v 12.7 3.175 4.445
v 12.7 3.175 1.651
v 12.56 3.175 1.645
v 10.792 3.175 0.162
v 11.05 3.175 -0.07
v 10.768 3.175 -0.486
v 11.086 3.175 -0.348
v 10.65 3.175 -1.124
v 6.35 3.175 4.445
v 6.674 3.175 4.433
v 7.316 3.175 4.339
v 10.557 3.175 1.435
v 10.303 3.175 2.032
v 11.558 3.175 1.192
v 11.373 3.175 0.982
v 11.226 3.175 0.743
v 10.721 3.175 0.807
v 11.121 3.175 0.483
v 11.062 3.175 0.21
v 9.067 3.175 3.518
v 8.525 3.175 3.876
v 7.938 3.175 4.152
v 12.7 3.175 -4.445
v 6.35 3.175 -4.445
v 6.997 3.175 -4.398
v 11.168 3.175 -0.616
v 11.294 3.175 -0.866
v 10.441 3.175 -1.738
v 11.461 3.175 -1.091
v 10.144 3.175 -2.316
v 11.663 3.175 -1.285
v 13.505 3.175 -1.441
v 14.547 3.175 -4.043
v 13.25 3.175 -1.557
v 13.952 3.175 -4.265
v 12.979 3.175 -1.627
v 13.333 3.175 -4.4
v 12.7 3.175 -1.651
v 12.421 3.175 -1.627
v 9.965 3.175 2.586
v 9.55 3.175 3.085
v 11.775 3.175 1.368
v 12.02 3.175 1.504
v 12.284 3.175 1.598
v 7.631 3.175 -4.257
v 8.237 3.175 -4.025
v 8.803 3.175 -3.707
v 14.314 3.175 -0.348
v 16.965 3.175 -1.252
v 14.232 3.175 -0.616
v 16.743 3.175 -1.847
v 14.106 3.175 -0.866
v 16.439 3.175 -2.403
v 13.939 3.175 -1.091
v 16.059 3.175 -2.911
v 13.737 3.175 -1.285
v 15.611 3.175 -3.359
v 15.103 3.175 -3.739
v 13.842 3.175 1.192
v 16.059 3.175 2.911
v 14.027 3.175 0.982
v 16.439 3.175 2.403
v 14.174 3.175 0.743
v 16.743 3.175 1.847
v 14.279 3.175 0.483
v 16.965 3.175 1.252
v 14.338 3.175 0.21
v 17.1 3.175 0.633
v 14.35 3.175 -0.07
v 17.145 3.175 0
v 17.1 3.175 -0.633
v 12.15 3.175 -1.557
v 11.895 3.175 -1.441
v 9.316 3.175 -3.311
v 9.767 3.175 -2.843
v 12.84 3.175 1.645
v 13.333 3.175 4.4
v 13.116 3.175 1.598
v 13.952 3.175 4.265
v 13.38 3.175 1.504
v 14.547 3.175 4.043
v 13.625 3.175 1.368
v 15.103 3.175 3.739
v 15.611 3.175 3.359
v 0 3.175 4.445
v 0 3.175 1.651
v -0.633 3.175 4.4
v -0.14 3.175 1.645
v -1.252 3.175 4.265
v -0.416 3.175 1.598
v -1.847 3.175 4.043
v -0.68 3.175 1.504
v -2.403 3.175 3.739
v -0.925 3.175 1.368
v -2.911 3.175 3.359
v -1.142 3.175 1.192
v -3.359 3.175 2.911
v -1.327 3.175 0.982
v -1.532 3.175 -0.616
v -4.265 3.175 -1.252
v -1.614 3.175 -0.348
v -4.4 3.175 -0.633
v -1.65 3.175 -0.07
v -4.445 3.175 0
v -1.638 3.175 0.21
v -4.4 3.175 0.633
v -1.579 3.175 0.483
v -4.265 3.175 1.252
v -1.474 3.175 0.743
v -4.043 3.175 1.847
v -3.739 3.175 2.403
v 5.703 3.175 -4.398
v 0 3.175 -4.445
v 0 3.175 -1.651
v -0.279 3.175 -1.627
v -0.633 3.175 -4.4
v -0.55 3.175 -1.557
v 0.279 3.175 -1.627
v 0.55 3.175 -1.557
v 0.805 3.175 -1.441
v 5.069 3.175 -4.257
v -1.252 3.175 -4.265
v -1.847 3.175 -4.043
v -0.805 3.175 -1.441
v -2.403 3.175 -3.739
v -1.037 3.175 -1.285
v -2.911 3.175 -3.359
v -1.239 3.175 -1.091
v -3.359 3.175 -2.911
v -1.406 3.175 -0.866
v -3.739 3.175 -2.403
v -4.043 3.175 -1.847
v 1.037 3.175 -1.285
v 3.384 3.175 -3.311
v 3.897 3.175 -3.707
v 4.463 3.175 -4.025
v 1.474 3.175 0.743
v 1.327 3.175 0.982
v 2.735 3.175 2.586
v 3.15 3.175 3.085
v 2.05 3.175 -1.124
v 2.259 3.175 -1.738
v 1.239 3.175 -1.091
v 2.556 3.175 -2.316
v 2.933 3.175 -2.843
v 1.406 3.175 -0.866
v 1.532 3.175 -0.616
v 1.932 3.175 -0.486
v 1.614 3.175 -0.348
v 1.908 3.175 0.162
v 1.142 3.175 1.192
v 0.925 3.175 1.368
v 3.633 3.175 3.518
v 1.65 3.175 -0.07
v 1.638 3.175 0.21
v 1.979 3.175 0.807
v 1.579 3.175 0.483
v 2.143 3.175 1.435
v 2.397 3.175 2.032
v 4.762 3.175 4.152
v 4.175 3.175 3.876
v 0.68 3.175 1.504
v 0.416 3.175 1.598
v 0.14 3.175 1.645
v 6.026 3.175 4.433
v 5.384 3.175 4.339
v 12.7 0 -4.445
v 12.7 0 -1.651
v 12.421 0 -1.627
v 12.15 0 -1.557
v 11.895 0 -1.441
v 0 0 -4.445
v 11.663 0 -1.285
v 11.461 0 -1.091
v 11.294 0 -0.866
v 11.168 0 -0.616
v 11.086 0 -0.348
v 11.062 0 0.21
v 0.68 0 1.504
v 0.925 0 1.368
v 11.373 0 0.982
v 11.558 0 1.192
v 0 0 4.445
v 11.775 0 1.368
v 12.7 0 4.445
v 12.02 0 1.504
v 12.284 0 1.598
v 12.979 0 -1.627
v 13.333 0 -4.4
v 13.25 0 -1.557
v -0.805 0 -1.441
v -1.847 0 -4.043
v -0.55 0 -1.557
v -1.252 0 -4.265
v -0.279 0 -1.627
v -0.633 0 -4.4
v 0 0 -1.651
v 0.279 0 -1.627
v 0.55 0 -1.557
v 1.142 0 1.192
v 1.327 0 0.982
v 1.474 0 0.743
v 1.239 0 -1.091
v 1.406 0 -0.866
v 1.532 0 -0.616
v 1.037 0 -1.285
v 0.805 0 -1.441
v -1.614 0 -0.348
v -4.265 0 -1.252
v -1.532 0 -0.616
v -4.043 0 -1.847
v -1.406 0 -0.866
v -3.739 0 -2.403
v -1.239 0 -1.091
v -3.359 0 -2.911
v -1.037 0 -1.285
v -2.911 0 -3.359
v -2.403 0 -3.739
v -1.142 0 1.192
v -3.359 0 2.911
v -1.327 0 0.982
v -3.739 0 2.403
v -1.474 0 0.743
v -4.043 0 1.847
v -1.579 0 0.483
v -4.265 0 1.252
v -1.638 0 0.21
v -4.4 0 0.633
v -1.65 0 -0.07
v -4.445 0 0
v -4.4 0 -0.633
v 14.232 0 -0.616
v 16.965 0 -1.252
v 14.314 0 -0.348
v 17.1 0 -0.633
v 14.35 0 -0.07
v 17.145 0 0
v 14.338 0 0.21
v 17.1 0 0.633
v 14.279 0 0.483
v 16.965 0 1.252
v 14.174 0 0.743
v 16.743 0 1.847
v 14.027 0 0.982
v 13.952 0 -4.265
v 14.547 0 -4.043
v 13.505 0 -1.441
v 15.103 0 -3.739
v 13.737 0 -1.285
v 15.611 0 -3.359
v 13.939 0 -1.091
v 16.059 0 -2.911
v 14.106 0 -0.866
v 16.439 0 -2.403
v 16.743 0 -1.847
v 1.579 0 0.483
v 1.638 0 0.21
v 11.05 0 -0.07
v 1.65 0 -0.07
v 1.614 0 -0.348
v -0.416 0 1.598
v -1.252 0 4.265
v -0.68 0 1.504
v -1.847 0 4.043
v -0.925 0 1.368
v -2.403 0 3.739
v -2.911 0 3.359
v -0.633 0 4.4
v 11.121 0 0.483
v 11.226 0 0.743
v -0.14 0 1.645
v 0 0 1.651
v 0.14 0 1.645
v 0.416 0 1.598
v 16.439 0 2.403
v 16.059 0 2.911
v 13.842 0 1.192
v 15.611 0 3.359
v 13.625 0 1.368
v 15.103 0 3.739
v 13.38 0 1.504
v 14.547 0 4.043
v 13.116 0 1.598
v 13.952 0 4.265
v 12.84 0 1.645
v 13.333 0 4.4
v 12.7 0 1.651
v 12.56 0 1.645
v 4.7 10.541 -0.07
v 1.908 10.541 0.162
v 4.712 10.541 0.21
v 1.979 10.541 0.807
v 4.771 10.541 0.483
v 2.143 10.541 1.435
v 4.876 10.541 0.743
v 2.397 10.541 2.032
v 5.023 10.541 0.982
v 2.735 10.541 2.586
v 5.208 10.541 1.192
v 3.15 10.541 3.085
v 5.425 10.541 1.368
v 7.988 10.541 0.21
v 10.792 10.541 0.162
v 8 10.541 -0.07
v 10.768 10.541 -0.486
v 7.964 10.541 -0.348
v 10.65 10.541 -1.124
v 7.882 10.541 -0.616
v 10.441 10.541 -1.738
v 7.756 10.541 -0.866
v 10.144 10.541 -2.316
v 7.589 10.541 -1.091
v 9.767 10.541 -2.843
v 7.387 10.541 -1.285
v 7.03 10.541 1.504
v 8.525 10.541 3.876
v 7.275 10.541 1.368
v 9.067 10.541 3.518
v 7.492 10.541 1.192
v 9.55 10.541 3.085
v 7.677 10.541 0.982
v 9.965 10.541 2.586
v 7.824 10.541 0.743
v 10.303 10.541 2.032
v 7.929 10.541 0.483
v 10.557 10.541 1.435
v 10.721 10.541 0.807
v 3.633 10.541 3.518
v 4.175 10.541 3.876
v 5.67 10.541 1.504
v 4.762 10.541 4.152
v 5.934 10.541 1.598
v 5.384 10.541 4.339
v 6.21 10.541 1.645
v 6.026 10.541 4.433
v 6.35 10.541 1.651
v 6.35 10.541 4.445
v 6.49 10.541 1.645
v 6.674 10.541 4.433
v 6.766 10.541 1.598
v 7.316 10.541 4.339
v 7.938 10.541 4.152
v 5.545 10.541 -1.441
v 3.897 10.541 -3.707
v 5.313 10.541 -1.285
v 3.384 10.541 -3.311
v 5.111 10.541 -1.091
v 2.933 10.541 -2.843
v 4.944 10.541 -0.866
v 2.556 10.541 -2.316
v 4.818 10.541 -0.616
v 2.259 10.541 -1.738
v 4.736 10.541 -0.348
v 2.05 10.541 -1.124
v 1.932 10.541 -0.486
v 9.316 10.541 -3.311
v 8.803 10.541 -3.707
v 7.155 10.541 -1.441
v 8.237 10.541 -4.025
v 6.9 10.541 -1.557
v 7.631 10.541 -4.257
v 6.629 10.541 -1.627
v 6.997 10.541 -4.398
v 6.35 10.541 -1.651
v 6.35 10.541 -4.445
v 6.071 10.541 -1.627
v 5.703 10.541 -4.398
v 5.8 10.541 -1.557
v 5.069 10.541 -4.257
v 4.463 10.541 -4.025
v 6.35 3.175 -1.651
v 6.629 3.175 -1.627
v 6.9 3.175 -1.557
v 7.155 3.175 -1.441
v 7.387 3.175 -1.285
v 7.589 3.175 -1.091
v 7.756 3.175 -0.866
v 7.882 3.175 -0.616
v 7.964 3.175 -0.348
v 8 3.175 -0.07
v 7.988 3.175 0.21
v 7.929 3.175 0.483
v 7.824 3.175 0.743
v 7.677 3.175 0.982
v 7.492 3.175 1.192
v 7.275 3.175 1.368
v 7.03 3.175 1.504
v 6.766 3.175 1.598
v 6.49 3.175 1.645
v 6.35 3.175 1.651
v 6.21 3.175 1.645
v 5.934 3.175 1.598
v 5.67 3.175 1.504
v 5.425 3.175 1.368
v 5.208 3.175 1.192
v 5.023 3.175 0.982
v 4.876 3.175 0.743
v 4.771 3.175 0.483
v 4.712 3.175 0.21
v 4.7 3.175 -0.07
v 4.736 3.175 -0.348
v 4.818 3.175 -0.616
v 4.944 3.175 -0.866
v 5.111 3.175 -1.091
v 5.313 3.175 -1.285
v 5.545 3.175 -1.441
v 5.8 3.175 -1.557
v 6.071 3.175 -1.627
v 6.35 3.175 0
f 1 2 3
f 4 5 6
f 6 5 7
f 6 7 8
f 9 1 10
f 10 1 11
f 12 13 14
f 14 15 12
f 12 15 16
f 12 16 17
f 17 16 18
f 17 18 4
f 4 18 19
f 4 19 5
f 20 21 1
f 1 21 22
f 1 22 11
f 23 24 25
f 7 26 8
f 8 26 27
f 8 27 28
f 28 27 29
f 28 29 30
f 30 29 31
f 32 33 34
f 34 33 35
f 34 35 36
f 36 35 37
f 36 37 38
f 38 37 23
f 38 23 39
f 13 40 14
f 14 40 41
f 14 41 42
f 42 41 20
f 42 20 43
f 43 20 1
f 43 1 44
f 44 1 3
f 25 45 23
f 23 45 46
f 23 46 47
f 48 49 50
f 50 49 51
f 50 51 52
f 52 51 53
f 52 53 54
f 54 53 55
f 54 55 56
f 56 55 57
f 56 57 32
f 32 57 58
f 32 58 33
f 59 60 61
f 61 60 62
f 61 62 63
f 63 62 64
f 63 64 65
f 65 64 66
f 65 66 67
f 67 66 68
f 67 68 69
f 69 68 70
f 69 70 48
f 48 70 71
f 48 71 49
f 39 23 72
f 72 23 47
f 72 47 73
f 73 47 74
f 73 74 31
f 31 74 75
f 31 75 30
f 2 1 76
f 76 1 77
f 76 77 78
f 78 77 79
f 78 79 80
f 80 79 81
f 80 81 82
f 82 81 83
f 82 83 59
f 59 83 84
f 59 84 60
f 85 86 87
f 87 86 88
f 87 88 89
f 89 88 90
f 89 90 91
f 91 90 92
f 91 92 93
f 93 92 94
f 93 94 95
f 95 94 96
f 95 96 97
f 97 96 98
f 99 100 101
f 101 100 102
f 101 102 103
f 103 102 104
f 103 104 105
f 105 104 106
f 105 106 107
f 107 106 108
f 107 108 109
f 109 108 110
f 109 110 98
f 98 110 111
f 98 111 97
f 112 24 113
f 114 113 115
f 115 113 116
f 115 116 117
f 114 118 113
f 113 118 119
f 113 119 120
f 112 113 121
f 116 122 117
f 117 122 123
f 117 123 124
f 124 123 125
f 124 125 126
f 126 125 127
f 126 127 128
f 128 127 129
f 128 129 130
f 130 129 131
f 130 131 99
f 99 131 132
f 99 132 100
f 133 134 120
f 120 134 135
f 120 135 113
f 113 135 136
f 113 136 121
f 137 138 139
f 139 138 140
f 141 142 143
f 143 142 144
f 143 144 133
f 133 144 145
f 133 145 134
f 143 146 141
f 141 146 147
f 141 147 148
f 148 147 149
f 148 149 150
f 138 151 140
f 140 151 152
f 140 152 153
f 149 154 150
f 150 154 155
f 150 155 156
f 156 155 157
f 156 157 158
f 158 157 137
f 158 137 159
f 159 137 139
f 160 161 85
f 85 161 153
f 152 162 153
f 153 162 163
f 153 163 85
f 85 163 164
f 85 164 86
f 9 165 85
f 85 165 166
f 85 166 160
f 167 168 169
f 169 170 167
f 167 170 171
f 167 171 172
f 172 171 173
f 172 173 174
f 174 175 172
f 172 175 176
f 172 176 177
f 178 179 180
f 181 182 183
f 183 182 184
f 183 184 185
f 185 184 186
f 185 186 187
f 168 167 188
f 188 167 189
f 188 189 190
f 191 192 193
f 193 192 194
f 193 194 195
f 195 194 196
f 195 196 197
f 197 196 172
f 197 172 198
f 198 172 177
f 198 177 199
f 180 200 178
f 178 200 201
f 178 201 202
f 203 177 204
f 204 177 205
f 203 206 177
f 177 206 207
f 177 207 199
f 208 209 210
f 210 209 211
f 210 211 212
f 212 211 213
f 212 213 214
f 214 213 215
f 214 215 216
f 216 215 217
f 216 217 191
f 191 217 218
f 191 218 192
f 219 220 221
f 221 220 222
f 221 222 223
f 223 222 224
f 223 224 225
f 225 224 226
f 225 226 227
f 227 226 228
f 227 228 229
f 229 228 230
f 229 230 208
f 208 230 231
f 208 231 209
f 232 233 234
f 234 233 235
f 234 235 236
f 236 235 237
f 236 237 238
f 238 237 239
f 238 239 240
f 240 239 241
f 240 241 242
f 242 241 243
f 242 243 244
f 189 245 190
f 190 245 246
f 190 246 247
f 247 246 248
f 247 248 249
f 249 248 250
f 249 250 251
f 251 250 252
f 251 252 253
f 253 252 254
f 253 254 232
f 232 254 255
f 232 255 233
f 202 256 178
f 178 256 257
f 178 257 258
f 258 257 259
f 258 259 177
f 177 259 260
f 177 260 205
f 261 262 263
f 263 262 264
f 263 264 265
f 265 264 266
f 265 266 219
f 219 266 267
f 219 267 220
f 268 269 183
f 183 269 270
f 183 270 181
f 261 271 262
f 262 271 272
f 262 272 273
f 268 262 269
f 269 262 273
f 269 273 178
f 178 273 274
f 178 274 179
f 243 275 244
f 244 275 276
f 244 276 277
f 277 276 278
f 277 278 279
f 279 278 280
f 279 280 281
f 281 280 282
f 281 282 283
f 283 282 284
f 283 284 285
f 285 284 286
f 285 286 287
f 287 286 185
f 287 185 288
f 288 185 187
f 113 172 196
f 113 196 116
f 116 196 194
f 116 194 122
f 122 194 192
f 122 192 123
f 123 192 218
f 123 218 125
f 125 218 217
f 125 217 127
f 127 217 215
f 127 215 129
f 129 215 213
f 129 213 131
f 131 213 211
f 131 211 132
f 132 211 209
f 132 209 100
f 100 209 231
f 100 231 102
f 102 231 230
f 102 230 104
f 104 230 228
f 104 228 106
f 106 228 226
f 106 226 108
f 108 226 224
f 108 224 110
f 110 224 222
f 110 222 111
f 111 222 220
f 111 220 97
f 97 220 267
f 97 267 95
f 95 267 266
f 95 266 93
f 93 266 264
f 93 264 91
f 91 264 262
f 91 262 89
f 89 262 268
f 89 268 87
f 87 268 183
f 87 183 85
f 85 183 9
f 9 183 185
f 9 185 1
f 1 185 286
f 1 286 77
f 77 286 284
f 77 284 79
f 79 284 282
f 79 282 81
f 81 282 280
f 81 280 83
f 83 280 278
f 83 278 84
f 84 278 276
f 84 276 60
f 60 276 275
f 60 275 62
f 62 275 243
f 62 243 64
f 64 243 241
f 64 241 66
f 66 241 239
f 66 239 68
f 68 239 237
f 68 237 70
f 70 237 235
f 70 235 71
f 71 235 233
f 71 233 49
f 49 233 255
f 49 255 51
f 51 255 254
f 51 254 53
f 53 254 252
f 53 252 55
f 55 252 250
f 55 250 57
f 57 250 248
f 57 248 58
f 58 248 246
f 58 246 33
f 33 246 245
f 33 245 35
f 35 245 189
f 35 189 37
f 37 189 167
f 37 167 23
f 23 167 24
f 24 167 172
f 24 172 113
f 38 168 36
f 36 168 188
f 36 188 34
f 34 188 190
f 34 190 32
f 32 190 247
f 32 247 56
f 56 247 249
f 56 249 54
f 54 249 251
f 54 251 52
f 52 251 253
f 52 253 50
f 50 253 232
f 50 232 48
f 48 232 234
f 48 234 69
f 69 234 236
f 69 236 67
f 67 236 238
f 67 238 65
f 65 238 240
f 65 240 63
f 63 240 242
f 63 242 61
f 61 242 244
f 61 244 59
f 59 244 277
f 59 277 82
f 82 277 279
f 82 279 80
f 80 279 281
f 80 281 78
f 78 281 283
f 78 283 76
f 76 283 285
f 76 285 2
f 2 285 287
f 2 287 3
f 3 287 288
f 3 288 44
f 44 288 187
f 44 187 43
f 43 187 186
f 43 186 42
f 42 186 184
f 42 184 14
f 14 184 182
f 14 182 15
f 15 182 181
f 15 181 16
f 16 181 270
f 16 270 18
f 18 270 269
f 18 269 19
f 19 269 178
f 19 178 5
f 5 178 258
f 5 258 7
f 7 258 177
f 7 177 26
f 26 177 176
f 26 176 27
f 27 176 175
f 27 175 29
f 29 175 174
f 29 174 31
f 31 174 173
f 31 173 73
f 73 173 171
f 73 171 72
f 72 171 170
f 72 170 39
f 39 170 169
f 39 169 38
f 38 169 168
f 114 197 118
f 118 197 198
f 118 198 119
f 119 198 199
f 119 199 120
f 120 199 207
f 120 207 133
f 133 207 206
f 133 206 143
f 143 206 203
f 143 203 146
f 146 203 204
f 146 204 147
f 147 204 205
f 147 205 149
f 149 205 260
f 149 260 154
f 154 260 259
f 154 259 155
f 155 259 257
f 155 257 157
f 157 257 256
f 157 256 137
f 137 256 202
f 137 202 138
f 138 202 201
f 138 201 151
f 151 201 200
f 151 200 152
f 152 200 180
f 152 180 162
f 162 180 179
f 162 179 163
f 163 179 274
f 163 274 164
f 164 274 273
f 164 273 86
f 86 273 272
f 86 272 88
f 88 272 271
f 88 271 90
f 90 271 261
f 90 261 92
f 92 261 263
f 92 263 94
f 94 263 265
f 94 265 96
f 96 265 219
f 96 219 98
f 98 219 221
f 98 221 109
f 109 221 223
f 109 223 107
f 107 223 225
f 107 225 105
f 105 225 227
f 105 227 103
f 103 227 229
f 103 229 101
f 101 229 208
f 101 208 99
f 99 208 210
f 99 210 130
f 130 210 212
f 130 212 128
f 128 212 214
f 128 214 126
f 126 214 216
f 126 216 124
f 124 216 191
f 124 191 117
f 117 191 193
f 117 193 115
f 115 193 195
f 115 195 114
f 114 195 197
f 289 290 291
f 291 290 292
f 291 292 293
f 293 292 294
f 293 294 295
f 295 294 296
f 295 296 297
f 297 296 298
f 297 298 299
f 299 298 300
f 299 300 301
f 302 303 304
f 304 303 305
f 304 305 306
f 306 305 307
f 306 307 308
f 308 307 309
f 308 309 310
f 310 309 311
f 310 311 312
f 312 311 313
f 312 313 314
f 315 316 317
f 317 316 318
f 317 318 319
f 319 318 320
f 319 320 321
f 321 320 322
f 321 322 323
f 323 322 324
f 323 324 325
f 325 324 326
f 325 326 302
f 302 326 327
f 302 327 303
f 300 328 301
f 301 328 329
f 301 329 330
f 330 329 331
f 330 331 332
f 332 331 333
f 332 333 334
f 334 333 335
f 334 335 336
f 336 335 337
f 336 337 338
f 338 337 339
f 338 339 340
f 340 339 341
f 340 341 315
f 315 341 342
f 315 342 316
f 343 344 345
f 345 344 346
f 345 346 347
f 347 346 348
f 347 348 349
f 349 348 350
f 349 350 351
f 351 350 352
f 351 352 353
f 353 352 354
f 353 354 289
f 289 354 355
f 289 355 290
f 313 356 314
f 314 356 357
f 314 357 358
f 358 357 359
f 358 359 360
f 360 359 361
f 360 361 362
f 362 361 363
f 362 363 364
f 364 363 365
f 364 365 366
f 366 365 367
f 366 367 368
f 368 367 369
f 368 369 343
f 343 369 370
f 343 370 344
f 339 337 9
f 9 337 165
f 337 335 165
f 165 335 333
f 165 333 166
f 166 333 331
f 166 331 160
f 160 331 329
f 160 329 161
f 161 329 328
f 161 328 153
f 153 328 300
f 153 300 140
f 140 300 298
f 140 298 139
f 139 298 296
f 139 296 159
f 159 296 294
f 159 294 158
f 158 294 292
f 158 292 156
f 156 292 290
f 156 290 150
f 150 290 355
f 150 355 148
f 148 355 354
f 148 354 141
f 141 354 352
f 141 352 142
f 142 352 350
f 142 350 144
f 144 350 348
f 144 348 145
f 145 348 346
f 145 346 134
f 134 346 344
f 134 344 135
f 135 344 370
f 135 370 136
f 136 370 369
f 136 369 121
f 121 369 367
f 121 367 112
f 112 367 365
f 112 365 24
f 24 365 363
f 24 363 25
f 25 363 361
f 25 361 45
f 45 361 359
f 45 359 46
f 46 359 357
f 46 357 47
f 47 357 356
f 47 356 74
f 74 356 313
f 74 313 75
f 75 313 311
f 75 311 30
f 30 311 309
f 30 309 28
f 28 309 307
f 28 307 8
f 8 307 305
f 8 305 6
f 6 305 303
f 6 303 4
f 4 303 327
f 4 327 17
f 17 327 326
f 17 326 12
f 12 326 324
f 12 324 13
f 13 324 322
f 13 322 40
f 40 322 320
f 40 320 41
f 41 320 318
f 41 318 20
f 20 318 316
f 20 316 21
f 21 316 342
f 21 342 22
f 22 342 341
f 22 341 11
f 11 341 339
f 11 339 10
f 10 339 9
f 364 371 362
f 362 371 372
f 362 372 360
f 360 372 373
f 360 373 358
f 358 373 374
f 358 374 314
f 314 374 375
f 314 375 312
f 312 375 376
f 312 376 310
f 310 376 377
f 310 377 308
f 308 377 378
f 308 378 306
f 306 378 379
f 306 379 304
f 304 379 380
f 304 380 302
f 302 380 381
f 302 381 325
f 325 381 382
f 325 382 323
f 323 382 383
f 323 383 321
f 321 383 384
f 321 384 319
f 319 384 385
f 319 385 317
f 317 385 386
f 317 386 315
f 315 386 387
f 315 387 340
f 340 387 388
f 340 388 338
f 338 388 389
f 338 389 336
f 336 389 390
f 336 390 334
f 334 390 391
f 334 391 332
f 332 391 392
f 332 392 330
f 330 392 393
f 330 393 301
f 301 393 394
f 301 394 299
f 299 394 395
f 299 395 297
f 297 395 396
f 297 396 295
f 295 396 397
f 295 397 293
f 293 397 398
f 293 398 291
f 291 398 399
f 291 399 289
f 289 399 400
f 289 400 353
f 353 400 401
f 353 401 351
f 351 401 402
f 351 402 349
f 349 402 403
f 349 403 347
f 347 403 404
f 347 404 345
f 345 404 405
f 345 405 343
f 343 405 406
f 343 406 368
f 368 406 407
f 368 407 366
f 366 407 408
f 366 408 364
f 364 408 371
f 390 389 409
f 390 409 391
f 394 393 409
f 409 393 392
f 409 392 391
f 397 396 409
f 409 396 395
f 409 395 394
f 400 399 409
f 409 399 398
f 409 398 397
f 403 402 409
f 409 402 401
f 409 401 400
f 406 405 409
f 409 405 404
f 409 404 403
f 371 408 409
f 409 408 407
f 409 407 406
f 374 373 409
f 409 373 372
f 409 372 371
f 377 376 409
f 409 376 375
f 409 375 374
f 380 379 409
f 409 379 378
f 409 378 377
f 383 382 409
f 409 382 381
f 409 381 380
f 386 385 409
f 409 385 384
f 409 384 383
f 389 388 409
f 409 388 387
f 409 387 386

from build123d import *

# Parameters (mm, degrees)
SKETCH1_R           = 1.651
BOSS_EXTRUDE1_DEPTH = 3.175
SKETCH2_R           = 4.445
SKETCH2_R_2         = 1.651
BOSS_EXTRUDE2_DEPTH = 7.366


with BuildPart() as part:
    # Sketch1 → Boss-Extrude1 (new body)
    with BuildSketch(Plane(origin=(0, 0, 0), x_dir=(1, 0, 0), z_dir=(0, 1, 0))):
        with BuildLine():
            Line((0, 4.445), (12.7, 4.445))
            ThreePointArc((12.7, 4.445), (17.145, 0), (12.7, -4.445))
            Line((12.7, -4.445), (0, -4.445))
            ThreePointArc((0, -4.445), (-4.445, 0), (0, 4.445))
        make_face()
        with Locations((12.7, 0)):
            Circle(SKETCH1_R, mode=Mode.SUBTRACT)
        Circle(SKETCH1_R, mode=Mode.SUBTRACT)
    extrude(amount=BOSS_EXTRUDE1_DEPTH)

    # Sketch2 → Boss-Extrude2 (add)
    with BuildSketch(Plane(origin=(0, 3.175, 0), x_dir=(1, 0, 0), z_dir=(0, 1, 0))):
        with Locations((6.35, 0)):
            Circle(SKETCH2_R)
        with Locations((6.35, 0)):
            Circle(SKETCH2_R_2, mode=Mode.SUBTRACT)
    extrude(amount=BOSS_EXTRUDE2_DEPTH)


solid = part.part
